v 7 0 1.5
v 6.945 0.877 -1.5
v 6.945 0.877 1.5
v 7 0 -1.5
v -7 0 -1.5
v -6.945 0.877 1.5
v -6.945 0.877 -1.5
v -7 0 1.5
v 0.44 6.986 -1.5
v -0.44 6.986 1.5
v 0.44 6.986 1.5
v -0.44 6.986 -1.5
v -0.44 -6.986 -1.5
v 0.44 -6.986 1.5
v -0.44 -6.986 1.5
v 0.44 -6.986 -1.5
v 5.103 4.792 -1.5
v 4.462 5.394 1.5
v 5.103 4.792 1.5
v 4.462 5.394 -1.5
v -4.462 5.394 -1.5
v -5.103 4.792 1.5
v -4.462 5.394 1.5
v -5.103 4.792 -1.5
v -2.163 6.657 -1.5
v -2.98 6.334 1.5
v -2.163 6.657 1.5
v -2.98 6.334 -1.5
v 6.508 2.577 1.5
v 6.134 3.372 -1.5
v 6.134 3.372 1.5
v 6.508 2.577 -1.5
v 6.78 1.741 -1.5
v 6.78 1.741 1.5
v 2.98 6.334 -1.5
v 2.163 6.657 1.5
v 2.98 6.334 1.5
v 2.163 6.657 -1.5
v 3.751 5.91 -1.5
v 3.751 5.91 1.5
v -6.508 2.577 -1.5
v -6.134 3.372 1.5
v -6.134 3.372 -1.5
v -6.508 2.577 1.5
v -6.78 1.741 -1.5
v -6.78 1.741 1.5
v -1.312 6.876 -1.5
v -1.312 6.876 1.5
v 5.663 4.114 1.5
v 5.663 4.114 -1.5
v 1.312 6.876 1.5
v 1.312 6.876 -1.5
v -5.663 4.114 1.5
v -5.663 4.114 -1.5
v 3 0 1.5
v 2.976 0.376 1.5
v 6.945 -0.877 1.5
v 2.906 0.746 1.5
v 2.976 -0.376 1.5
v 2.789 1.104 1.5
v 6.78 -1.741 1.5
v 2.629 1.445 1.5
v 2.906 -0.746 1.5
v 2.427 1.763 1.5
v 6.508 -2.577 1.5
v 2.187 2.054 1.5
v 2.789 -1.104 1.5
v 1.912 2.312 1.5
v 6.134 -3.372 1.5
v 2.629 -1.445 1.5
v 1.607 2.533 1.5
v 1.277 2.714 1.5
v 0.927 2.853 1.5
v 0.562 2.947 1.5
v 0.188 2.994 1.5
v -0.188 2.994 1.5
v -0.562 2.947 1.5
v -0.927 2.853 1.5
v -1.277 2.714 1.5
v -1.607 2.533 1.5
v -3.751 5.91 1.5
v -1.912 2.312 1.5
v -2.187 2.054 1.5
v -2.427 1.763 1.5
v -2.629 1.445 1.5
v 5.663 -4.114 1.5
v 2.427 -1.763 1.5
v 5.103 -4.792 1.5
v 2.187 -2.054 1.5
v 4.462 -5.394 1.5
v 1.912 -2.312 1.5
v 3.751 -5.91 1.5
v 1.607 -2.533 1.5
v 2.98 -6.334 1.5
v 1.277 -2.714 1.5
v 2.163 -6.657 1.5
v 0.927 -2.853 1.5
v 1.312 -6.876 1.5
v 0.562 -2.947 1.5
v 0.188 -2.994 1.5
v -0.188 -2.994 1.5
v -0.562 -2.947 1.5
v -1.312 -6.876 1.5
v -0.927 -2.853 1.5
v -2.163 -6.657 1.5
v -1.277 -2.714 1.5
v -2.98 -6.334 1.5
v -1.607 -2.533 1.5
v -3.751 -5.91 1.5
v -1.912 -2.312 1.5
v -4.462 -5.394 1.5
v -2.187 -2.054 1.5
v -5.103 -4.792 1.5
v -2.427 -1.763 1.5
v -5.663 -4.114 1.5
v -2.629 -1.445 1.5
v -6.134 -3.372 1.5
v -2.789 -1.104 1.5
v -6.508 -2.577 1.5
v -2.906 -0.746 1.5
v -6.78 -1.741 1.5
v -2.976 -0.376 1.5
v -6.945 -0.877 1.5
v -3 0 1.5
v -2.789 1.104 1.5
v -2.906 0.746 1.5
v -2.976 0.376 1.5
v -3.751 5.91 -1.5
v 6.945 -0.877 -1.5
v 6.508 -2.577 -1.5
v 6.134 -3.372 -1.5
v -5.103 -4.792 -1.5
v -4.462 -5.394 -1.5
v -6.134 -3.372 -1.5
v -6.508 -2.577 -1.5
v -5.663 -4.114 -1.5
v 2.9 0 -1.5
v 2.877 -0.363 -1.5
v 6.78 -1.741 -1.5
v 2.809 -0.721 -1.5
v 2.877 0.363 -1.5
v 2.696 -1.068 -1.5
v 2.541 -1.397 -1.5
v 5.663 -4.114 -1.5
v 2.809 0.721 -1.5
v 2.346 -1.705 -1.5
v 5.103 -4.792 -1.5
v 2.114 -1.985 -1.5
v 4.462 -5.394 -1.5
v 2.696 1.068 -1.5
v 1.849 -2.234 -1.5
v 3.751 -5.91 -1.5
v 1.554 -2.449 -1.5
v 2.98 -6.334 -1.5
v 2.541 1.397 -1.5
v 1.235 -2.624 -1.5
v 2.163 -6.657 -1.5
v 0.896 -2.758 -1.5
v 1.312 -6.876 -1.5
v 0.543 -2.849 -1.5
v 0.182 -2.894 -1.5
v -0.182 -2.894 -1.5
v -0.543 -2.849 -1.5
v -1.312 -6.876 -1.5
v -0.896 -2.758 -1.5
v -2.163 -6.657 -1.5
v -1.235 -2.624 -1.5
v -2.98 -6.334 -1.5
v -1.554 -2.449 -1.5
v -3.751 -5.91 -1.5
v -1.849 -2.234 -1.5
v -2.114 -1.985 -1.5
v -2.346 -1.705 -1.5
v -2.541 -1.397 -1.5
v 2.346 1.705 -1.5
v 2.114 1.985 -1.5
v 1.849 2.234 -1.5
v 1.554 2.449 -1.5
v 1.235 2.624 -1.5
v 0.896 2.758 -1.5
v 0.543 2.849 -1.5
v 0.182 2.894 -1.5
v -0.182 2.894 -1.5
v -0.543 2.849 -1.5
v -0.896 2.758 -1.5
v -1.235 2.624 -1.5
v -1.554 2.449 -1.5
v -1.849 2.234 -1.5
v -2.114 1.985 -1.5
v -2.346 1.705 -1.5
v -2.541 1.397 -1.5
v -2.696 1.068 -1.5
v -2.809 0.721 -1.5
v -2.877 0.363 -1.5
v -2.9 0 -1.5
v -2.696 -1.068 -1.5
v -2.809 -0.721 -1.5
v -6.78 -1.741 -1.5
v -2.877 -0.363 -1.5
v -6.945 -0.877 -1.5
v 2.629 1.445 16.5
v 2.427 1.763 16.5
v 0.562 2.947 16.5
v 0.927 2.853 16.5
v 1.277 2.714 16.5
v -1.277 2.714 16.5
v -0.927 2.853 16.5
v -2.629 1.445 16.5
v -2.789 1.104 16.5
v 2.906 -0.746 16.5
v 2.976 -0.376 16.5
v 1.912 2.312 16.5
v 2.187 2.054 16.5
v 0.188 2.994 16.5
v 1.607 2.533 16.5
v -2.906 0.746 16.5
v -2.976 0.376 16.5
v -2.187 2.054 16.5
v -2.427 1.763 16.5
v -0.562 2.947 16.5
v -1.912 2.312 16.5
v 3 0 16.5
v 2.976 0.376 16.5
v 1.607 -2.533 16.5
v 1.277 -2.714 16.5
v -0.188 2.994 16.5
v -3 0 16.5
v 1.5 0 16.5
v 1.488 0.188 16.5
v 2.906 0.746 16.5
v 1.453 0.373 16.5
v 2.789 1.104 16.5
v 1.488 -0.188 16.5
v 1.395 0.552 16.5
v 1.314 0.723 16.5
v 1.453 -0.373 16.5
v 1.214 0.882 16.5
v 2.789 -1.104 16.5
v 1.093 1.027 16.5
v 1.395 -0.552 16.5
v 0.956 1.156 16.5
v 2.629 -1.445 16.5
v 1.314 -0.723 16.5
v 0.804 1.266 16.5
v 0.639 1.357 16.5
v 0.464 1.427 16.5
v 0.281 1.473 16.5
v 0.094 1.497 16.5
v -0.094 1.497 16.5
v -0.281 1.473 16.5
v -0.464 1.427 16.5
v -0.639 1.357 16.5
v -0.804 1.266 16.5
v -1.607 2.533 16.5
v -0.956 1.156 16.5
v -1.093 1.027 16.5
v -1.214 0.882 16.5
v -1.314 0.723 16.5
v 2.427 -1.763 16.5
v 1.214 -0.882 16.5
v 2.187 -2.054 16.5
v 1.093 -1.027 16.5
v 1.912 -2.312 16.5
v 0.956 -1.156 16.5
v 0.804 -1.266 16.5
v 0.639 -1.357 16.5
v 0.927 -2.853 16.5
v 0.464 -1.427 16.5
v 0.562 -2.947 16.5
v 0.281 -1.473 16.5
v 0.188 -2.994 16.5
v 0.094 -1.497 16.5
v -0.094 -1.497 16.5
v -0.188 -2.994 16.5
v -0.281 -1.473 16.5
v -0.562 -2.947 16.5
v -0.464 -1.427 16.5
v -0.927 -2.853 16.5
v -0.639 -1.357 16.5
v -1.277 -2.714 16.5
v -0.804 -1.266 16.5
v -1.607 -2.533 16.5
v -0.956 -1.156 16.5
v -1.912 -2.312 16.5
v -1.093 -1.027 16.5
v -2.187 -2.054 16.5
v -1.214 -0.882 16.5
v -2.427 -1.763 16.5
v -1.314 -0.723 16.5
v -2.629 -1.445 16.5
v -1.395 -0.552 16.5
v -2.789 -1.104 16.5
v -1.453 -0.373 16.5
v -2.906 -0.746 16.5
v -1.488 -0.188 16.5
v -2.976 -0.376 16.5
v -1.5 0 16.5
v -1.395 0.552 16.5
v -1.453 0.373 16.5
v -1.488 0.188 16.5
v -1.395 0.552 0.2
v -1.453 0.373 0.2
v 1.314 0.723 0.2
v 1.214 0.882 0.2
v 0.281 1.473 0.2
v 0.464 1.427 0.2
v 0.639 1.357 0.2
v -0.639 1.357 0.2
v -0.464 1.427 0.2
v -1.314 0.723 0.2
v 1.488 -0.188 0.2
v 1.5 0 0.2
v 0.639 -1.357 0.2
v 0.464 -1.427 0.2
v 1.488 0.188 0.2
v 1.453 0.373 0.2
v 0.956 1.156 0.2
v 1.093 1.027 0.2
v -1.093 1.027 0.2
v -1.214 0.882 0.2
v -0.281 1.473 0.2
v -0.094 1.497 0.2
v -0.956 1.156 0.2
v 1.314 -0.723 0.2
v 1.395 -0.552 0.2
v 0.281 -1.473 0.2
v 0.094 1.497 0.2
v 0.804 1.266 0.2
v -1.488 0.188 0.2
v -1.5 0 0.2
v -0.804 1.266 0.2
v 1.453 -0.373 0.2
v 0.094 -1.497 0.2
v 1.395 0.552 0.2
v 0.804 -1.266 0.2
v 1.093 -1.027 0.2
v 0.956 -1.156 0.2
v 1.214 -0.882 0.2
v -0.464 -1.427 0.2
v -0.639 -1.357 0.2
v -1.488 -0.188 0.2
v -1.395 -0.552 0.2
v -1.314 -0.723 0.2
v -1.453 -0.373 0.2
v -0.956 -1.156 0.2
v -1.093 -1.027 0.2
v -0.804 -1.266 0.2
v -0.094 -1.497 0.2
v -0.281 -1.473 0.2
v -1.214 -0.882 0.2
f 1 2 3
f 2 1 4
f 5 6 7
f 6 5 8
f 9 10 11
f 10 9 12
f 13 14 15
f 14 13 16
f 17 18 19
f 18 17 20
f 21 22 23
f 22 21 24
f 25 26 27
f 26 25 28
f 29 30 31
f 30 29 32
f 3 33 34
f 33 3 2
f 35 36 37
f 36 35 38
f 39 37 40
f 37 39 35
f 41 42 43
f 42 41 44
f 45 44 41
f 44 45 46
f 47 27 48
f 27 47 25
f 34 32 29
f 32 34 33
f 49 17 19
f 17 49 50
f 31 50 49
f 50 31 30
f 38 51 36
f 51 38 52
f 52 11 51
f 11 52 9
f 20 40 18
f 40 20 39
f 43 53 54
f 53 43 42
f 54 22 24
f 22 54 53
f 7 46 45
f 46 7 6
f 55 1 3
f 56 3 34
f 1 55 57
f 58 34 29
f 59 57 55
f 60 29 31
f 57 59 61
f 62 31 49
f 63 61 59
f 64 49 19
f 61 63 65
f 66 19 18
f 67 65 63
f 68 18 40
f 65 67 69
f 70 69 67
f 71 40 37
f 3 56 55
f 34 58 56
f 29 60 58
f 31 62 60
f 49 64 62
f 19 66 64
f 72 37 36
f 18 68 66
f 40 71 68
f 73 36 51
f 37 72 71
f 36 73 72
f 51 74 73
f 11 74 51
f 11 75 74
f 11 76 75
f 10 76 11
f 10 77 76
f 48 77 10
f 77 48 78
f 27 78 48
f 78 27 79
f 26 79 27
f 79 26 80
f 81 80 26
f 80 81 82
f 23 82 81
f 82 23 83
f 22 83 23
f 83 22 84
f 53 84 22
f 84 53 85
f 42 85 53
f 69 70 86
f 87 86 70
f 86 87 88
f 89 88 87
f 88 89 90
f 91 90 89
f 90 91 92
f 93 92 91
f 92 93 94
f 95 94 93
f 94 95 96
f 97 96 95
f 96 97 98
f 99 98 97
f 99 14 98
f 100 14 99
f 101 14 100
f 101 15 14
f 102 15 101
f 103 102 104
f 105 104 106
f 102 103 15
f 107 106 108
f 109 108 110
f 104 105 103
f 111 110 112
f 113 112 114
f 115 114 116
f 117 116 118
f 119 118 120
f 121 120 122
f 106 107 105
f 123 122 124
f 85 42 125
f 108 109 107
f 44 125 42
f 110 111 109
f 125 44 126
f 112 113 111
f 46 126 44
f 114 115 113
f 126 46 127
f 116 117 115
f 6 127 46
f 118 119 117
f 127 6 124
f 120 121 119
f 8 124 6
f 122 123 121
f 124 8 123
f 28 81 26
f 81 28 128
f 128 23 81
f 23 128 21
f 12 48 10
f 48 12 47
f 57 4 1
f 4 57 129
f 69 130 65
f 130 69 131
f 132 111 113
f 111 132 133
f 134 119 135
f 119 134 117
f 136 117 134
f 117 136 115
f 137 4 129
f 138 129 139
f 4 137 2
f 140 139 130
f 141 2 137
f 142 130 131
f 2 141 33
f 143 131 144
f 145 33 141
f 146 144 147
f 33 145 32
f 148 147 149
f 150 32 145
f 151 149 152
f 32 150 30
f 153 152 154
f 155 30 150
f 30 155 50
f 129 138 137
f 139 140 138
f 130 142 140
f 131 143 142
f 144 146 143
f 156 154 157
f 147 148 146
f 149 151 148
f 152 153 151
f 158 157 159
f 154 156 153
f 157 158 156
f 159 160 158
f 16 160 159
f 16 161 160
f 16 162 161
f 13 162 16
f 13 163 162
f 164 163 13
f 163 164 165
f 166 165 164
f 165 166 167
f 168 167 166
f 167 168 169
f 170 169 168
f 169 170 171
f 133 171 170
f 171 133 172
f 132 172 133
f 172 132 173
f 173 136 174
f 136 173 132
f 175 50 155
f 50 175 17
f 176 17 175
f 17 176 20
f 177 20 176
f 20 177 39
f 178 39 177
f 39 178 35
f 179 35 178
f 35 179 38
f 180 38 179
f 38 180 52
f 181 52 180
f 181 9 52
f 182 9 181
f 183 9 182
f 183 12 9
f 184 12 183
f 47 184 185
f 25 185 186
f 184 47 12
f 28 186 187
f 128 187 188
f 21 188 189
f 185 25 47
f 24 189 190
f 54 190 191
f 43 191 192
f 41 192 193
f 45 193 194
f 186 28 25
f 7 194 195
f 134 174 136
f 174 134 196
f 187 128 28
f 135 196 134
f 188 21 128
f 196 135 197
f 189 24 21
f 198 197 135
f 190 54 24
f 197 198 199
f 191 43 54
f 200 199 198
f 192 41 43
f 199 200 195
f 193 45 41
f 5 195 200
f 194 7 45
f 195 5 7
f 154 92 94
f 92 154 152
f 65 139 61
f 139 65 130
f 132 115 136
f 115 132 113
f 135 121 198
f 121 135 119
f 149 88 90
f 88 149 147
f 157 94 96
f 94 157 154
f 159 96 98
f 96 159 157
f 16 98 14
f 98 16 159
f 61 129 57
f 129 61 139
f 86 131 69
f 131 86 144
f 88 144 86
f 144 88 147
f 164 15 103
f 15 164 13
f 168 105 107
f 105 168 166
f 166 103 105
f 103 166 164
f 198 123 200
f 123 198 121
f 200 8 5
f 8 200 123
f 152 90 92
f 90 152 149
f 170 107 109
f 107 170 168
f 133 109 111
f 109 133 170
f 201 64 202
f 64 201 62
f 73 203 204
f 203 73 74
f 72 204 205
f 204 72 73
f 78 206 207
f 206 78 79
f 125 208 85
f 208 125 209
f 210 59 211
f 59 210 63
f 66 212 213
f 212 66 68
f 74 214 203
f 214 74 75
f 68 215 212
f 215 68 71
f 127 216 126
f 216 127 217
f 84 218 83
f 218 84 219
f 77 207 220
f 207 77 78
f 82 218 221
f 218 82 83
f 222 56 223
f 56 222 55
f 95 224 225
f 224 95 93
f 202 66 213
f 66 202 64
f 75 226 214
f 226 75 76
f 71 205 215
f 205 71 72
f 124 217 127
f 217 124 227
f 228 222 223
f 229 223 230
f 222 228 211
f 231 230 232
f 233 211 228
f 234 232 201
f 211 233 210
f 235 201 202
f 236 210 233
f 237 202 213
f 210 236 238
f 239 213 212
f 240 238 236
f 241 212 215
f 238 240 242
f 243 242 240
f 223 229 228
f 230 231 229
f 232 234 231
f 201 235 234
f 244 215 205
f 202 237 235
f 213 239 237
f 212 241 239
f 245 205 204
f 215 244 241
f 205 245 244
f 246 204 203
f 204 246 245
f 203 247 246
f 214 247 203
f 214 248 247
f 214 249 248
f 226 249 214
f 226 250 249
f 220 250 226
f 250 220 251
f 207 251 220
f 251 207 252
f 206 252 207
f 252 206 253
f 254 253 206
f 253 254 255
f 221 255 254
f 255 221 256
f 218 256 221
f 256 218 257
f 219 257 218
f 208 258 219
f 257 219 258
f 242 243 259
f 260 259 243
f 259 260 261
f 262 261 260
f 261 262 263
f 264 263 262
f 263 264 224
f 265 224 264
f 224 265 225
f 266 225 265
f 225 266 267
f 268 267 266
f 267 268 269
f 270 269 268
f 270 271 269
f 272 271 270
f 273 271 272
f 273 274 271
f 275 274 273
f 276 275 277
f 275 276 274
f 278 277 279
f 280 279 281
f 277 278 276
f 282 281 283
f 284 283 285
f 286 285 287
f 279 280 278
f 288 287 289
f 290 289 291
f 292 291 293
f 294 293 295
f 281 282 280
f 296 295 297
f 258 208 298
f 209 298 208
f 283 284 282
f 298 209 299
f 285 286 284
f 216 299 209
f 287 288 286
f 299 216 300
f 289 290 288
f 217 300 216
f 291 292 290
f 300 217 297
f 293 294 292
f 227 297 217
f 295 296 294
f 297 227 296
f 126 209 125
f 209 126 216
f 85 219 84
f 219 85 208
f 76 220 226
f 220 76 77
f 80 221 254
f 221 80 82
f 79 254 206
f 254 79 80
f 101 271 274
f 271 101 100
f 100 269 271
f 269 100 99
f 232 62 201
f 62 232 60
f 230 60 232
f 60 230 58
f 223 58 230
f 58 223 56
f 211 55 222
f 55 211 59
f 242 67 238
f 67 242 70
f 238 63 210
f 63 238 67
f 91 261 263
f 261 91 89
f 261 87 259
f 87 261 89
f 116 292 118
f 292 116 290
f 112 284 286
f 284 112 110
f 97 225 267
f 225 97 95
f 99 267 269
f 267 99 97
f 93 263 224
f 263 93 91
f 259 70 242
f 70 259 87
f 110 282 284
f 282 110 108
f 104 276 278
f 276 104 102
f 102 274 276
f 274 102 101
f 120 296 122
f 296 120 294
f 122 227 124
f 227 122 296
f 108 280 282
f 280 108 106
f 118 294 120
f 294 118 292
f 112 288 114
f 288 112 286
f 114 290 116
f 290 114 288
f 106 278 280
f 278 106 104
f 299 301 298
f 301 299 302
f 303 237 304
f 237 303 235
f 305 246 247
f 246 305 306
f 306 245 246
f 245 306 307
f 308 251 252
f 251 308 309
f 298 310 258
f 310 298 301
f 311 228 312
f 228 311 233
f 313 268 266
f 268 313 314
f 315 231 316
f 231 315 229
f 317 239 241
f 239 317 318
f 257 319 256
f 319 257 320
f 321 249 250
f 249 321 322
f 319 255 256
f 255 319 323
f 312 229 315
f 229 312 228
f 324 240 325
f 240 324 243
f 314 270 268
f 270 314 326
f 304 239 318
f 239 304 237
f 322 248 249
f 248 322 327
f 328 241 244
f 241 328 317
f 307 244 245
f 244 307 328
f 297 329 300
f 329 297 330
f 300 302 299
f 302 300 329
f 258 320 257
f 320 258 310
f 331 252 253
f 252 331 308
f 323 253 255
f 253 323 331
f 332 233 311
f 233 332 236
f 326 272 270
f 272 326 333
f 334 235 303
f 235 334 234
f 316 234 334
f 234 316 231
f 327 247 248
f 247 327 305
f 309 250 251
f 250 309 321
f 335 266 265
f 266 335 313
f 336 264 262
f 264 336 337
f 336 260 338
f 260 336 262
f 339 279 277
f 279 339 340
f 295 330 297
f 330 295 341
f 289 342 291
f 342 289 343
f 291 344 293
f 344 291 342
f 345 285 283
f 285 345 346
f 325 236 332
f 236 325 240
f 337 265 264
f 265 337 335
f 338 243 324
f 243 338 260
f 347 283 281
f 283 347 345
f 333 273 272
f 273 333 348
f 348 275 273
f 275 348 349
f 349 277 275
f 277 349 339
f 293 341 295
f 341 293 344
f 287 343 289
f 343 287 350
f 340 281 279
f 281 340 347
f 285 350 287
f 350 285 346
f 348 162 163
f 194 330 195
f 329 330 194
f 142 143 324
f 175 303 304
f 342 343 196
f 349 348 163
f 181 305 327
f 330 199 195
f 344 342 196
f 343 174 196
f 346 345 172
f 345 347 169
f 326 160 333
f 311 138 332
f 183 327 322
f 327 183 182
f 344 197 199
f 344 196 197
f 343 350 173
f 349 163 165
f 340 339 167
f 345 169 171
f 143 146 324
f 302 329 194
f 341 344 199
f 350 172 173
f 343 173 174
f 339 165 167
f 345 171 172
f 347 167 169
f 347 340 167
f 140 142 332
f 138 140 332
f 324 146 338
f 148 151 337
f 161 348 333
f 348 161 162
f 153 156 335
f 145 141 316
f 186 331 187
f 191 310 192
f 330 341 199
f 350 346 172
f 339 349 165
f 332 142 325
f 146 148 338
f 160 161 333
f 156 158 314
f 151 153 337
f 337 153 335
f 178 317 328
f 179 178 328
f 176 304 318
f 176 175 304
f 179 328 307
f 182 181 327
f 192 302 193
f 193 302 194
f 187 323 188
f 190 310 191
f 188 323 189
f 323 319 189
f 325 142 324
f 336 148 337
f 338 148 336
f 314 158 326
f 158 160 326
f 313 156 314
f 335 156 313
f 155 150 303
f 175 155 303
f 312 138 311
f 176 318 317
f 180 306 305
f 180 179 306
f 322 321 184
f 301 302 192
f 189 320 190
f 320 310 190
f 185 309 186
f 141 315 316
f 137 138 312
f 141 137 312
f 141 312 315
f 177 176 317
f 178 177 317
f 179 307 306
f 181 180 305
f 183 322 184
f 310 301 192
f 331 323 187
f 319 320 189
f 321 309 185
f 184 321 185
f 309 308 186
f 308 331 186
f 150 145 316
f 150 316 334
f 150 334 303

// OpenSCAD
$fn = 50;


difference() {
	union() {
		translate(v = [0, 0, -1.5000000000]) {
			rotate(a = [0, 0, 0]) {
				cylinder(h = 3, r = 7.0000000000);
			}
		}
		translate(v = [0, 0, -1.5000000000]) {
			rotate(a = [0, 0, 0]) {
				cylinder(h = 18, r = 3.0000000000);
			}
		}
	}
	union() {
		translate(v = [0, 0, -125.0000000000]) {
			rotate(a = [0, 0, 0]) {
				cylinder(h = 250, r = 1.5000000000);
			}
		}
		#translate(v = [0, 0, 0.2000000000]) {
			rotate(a = [0, 180, 0]) {
				cylinder(h = 1.7000000000, r1 = 1.5000000000, r2 = 2.9000000000);
			}
		}
		#translate(v = [0, 0, 16.5000000000]) {
			rotate(a = [0, 180, 0]) {
				cylinder(h = 18, r = 1.5000000000);
			}
		}
	}
}
